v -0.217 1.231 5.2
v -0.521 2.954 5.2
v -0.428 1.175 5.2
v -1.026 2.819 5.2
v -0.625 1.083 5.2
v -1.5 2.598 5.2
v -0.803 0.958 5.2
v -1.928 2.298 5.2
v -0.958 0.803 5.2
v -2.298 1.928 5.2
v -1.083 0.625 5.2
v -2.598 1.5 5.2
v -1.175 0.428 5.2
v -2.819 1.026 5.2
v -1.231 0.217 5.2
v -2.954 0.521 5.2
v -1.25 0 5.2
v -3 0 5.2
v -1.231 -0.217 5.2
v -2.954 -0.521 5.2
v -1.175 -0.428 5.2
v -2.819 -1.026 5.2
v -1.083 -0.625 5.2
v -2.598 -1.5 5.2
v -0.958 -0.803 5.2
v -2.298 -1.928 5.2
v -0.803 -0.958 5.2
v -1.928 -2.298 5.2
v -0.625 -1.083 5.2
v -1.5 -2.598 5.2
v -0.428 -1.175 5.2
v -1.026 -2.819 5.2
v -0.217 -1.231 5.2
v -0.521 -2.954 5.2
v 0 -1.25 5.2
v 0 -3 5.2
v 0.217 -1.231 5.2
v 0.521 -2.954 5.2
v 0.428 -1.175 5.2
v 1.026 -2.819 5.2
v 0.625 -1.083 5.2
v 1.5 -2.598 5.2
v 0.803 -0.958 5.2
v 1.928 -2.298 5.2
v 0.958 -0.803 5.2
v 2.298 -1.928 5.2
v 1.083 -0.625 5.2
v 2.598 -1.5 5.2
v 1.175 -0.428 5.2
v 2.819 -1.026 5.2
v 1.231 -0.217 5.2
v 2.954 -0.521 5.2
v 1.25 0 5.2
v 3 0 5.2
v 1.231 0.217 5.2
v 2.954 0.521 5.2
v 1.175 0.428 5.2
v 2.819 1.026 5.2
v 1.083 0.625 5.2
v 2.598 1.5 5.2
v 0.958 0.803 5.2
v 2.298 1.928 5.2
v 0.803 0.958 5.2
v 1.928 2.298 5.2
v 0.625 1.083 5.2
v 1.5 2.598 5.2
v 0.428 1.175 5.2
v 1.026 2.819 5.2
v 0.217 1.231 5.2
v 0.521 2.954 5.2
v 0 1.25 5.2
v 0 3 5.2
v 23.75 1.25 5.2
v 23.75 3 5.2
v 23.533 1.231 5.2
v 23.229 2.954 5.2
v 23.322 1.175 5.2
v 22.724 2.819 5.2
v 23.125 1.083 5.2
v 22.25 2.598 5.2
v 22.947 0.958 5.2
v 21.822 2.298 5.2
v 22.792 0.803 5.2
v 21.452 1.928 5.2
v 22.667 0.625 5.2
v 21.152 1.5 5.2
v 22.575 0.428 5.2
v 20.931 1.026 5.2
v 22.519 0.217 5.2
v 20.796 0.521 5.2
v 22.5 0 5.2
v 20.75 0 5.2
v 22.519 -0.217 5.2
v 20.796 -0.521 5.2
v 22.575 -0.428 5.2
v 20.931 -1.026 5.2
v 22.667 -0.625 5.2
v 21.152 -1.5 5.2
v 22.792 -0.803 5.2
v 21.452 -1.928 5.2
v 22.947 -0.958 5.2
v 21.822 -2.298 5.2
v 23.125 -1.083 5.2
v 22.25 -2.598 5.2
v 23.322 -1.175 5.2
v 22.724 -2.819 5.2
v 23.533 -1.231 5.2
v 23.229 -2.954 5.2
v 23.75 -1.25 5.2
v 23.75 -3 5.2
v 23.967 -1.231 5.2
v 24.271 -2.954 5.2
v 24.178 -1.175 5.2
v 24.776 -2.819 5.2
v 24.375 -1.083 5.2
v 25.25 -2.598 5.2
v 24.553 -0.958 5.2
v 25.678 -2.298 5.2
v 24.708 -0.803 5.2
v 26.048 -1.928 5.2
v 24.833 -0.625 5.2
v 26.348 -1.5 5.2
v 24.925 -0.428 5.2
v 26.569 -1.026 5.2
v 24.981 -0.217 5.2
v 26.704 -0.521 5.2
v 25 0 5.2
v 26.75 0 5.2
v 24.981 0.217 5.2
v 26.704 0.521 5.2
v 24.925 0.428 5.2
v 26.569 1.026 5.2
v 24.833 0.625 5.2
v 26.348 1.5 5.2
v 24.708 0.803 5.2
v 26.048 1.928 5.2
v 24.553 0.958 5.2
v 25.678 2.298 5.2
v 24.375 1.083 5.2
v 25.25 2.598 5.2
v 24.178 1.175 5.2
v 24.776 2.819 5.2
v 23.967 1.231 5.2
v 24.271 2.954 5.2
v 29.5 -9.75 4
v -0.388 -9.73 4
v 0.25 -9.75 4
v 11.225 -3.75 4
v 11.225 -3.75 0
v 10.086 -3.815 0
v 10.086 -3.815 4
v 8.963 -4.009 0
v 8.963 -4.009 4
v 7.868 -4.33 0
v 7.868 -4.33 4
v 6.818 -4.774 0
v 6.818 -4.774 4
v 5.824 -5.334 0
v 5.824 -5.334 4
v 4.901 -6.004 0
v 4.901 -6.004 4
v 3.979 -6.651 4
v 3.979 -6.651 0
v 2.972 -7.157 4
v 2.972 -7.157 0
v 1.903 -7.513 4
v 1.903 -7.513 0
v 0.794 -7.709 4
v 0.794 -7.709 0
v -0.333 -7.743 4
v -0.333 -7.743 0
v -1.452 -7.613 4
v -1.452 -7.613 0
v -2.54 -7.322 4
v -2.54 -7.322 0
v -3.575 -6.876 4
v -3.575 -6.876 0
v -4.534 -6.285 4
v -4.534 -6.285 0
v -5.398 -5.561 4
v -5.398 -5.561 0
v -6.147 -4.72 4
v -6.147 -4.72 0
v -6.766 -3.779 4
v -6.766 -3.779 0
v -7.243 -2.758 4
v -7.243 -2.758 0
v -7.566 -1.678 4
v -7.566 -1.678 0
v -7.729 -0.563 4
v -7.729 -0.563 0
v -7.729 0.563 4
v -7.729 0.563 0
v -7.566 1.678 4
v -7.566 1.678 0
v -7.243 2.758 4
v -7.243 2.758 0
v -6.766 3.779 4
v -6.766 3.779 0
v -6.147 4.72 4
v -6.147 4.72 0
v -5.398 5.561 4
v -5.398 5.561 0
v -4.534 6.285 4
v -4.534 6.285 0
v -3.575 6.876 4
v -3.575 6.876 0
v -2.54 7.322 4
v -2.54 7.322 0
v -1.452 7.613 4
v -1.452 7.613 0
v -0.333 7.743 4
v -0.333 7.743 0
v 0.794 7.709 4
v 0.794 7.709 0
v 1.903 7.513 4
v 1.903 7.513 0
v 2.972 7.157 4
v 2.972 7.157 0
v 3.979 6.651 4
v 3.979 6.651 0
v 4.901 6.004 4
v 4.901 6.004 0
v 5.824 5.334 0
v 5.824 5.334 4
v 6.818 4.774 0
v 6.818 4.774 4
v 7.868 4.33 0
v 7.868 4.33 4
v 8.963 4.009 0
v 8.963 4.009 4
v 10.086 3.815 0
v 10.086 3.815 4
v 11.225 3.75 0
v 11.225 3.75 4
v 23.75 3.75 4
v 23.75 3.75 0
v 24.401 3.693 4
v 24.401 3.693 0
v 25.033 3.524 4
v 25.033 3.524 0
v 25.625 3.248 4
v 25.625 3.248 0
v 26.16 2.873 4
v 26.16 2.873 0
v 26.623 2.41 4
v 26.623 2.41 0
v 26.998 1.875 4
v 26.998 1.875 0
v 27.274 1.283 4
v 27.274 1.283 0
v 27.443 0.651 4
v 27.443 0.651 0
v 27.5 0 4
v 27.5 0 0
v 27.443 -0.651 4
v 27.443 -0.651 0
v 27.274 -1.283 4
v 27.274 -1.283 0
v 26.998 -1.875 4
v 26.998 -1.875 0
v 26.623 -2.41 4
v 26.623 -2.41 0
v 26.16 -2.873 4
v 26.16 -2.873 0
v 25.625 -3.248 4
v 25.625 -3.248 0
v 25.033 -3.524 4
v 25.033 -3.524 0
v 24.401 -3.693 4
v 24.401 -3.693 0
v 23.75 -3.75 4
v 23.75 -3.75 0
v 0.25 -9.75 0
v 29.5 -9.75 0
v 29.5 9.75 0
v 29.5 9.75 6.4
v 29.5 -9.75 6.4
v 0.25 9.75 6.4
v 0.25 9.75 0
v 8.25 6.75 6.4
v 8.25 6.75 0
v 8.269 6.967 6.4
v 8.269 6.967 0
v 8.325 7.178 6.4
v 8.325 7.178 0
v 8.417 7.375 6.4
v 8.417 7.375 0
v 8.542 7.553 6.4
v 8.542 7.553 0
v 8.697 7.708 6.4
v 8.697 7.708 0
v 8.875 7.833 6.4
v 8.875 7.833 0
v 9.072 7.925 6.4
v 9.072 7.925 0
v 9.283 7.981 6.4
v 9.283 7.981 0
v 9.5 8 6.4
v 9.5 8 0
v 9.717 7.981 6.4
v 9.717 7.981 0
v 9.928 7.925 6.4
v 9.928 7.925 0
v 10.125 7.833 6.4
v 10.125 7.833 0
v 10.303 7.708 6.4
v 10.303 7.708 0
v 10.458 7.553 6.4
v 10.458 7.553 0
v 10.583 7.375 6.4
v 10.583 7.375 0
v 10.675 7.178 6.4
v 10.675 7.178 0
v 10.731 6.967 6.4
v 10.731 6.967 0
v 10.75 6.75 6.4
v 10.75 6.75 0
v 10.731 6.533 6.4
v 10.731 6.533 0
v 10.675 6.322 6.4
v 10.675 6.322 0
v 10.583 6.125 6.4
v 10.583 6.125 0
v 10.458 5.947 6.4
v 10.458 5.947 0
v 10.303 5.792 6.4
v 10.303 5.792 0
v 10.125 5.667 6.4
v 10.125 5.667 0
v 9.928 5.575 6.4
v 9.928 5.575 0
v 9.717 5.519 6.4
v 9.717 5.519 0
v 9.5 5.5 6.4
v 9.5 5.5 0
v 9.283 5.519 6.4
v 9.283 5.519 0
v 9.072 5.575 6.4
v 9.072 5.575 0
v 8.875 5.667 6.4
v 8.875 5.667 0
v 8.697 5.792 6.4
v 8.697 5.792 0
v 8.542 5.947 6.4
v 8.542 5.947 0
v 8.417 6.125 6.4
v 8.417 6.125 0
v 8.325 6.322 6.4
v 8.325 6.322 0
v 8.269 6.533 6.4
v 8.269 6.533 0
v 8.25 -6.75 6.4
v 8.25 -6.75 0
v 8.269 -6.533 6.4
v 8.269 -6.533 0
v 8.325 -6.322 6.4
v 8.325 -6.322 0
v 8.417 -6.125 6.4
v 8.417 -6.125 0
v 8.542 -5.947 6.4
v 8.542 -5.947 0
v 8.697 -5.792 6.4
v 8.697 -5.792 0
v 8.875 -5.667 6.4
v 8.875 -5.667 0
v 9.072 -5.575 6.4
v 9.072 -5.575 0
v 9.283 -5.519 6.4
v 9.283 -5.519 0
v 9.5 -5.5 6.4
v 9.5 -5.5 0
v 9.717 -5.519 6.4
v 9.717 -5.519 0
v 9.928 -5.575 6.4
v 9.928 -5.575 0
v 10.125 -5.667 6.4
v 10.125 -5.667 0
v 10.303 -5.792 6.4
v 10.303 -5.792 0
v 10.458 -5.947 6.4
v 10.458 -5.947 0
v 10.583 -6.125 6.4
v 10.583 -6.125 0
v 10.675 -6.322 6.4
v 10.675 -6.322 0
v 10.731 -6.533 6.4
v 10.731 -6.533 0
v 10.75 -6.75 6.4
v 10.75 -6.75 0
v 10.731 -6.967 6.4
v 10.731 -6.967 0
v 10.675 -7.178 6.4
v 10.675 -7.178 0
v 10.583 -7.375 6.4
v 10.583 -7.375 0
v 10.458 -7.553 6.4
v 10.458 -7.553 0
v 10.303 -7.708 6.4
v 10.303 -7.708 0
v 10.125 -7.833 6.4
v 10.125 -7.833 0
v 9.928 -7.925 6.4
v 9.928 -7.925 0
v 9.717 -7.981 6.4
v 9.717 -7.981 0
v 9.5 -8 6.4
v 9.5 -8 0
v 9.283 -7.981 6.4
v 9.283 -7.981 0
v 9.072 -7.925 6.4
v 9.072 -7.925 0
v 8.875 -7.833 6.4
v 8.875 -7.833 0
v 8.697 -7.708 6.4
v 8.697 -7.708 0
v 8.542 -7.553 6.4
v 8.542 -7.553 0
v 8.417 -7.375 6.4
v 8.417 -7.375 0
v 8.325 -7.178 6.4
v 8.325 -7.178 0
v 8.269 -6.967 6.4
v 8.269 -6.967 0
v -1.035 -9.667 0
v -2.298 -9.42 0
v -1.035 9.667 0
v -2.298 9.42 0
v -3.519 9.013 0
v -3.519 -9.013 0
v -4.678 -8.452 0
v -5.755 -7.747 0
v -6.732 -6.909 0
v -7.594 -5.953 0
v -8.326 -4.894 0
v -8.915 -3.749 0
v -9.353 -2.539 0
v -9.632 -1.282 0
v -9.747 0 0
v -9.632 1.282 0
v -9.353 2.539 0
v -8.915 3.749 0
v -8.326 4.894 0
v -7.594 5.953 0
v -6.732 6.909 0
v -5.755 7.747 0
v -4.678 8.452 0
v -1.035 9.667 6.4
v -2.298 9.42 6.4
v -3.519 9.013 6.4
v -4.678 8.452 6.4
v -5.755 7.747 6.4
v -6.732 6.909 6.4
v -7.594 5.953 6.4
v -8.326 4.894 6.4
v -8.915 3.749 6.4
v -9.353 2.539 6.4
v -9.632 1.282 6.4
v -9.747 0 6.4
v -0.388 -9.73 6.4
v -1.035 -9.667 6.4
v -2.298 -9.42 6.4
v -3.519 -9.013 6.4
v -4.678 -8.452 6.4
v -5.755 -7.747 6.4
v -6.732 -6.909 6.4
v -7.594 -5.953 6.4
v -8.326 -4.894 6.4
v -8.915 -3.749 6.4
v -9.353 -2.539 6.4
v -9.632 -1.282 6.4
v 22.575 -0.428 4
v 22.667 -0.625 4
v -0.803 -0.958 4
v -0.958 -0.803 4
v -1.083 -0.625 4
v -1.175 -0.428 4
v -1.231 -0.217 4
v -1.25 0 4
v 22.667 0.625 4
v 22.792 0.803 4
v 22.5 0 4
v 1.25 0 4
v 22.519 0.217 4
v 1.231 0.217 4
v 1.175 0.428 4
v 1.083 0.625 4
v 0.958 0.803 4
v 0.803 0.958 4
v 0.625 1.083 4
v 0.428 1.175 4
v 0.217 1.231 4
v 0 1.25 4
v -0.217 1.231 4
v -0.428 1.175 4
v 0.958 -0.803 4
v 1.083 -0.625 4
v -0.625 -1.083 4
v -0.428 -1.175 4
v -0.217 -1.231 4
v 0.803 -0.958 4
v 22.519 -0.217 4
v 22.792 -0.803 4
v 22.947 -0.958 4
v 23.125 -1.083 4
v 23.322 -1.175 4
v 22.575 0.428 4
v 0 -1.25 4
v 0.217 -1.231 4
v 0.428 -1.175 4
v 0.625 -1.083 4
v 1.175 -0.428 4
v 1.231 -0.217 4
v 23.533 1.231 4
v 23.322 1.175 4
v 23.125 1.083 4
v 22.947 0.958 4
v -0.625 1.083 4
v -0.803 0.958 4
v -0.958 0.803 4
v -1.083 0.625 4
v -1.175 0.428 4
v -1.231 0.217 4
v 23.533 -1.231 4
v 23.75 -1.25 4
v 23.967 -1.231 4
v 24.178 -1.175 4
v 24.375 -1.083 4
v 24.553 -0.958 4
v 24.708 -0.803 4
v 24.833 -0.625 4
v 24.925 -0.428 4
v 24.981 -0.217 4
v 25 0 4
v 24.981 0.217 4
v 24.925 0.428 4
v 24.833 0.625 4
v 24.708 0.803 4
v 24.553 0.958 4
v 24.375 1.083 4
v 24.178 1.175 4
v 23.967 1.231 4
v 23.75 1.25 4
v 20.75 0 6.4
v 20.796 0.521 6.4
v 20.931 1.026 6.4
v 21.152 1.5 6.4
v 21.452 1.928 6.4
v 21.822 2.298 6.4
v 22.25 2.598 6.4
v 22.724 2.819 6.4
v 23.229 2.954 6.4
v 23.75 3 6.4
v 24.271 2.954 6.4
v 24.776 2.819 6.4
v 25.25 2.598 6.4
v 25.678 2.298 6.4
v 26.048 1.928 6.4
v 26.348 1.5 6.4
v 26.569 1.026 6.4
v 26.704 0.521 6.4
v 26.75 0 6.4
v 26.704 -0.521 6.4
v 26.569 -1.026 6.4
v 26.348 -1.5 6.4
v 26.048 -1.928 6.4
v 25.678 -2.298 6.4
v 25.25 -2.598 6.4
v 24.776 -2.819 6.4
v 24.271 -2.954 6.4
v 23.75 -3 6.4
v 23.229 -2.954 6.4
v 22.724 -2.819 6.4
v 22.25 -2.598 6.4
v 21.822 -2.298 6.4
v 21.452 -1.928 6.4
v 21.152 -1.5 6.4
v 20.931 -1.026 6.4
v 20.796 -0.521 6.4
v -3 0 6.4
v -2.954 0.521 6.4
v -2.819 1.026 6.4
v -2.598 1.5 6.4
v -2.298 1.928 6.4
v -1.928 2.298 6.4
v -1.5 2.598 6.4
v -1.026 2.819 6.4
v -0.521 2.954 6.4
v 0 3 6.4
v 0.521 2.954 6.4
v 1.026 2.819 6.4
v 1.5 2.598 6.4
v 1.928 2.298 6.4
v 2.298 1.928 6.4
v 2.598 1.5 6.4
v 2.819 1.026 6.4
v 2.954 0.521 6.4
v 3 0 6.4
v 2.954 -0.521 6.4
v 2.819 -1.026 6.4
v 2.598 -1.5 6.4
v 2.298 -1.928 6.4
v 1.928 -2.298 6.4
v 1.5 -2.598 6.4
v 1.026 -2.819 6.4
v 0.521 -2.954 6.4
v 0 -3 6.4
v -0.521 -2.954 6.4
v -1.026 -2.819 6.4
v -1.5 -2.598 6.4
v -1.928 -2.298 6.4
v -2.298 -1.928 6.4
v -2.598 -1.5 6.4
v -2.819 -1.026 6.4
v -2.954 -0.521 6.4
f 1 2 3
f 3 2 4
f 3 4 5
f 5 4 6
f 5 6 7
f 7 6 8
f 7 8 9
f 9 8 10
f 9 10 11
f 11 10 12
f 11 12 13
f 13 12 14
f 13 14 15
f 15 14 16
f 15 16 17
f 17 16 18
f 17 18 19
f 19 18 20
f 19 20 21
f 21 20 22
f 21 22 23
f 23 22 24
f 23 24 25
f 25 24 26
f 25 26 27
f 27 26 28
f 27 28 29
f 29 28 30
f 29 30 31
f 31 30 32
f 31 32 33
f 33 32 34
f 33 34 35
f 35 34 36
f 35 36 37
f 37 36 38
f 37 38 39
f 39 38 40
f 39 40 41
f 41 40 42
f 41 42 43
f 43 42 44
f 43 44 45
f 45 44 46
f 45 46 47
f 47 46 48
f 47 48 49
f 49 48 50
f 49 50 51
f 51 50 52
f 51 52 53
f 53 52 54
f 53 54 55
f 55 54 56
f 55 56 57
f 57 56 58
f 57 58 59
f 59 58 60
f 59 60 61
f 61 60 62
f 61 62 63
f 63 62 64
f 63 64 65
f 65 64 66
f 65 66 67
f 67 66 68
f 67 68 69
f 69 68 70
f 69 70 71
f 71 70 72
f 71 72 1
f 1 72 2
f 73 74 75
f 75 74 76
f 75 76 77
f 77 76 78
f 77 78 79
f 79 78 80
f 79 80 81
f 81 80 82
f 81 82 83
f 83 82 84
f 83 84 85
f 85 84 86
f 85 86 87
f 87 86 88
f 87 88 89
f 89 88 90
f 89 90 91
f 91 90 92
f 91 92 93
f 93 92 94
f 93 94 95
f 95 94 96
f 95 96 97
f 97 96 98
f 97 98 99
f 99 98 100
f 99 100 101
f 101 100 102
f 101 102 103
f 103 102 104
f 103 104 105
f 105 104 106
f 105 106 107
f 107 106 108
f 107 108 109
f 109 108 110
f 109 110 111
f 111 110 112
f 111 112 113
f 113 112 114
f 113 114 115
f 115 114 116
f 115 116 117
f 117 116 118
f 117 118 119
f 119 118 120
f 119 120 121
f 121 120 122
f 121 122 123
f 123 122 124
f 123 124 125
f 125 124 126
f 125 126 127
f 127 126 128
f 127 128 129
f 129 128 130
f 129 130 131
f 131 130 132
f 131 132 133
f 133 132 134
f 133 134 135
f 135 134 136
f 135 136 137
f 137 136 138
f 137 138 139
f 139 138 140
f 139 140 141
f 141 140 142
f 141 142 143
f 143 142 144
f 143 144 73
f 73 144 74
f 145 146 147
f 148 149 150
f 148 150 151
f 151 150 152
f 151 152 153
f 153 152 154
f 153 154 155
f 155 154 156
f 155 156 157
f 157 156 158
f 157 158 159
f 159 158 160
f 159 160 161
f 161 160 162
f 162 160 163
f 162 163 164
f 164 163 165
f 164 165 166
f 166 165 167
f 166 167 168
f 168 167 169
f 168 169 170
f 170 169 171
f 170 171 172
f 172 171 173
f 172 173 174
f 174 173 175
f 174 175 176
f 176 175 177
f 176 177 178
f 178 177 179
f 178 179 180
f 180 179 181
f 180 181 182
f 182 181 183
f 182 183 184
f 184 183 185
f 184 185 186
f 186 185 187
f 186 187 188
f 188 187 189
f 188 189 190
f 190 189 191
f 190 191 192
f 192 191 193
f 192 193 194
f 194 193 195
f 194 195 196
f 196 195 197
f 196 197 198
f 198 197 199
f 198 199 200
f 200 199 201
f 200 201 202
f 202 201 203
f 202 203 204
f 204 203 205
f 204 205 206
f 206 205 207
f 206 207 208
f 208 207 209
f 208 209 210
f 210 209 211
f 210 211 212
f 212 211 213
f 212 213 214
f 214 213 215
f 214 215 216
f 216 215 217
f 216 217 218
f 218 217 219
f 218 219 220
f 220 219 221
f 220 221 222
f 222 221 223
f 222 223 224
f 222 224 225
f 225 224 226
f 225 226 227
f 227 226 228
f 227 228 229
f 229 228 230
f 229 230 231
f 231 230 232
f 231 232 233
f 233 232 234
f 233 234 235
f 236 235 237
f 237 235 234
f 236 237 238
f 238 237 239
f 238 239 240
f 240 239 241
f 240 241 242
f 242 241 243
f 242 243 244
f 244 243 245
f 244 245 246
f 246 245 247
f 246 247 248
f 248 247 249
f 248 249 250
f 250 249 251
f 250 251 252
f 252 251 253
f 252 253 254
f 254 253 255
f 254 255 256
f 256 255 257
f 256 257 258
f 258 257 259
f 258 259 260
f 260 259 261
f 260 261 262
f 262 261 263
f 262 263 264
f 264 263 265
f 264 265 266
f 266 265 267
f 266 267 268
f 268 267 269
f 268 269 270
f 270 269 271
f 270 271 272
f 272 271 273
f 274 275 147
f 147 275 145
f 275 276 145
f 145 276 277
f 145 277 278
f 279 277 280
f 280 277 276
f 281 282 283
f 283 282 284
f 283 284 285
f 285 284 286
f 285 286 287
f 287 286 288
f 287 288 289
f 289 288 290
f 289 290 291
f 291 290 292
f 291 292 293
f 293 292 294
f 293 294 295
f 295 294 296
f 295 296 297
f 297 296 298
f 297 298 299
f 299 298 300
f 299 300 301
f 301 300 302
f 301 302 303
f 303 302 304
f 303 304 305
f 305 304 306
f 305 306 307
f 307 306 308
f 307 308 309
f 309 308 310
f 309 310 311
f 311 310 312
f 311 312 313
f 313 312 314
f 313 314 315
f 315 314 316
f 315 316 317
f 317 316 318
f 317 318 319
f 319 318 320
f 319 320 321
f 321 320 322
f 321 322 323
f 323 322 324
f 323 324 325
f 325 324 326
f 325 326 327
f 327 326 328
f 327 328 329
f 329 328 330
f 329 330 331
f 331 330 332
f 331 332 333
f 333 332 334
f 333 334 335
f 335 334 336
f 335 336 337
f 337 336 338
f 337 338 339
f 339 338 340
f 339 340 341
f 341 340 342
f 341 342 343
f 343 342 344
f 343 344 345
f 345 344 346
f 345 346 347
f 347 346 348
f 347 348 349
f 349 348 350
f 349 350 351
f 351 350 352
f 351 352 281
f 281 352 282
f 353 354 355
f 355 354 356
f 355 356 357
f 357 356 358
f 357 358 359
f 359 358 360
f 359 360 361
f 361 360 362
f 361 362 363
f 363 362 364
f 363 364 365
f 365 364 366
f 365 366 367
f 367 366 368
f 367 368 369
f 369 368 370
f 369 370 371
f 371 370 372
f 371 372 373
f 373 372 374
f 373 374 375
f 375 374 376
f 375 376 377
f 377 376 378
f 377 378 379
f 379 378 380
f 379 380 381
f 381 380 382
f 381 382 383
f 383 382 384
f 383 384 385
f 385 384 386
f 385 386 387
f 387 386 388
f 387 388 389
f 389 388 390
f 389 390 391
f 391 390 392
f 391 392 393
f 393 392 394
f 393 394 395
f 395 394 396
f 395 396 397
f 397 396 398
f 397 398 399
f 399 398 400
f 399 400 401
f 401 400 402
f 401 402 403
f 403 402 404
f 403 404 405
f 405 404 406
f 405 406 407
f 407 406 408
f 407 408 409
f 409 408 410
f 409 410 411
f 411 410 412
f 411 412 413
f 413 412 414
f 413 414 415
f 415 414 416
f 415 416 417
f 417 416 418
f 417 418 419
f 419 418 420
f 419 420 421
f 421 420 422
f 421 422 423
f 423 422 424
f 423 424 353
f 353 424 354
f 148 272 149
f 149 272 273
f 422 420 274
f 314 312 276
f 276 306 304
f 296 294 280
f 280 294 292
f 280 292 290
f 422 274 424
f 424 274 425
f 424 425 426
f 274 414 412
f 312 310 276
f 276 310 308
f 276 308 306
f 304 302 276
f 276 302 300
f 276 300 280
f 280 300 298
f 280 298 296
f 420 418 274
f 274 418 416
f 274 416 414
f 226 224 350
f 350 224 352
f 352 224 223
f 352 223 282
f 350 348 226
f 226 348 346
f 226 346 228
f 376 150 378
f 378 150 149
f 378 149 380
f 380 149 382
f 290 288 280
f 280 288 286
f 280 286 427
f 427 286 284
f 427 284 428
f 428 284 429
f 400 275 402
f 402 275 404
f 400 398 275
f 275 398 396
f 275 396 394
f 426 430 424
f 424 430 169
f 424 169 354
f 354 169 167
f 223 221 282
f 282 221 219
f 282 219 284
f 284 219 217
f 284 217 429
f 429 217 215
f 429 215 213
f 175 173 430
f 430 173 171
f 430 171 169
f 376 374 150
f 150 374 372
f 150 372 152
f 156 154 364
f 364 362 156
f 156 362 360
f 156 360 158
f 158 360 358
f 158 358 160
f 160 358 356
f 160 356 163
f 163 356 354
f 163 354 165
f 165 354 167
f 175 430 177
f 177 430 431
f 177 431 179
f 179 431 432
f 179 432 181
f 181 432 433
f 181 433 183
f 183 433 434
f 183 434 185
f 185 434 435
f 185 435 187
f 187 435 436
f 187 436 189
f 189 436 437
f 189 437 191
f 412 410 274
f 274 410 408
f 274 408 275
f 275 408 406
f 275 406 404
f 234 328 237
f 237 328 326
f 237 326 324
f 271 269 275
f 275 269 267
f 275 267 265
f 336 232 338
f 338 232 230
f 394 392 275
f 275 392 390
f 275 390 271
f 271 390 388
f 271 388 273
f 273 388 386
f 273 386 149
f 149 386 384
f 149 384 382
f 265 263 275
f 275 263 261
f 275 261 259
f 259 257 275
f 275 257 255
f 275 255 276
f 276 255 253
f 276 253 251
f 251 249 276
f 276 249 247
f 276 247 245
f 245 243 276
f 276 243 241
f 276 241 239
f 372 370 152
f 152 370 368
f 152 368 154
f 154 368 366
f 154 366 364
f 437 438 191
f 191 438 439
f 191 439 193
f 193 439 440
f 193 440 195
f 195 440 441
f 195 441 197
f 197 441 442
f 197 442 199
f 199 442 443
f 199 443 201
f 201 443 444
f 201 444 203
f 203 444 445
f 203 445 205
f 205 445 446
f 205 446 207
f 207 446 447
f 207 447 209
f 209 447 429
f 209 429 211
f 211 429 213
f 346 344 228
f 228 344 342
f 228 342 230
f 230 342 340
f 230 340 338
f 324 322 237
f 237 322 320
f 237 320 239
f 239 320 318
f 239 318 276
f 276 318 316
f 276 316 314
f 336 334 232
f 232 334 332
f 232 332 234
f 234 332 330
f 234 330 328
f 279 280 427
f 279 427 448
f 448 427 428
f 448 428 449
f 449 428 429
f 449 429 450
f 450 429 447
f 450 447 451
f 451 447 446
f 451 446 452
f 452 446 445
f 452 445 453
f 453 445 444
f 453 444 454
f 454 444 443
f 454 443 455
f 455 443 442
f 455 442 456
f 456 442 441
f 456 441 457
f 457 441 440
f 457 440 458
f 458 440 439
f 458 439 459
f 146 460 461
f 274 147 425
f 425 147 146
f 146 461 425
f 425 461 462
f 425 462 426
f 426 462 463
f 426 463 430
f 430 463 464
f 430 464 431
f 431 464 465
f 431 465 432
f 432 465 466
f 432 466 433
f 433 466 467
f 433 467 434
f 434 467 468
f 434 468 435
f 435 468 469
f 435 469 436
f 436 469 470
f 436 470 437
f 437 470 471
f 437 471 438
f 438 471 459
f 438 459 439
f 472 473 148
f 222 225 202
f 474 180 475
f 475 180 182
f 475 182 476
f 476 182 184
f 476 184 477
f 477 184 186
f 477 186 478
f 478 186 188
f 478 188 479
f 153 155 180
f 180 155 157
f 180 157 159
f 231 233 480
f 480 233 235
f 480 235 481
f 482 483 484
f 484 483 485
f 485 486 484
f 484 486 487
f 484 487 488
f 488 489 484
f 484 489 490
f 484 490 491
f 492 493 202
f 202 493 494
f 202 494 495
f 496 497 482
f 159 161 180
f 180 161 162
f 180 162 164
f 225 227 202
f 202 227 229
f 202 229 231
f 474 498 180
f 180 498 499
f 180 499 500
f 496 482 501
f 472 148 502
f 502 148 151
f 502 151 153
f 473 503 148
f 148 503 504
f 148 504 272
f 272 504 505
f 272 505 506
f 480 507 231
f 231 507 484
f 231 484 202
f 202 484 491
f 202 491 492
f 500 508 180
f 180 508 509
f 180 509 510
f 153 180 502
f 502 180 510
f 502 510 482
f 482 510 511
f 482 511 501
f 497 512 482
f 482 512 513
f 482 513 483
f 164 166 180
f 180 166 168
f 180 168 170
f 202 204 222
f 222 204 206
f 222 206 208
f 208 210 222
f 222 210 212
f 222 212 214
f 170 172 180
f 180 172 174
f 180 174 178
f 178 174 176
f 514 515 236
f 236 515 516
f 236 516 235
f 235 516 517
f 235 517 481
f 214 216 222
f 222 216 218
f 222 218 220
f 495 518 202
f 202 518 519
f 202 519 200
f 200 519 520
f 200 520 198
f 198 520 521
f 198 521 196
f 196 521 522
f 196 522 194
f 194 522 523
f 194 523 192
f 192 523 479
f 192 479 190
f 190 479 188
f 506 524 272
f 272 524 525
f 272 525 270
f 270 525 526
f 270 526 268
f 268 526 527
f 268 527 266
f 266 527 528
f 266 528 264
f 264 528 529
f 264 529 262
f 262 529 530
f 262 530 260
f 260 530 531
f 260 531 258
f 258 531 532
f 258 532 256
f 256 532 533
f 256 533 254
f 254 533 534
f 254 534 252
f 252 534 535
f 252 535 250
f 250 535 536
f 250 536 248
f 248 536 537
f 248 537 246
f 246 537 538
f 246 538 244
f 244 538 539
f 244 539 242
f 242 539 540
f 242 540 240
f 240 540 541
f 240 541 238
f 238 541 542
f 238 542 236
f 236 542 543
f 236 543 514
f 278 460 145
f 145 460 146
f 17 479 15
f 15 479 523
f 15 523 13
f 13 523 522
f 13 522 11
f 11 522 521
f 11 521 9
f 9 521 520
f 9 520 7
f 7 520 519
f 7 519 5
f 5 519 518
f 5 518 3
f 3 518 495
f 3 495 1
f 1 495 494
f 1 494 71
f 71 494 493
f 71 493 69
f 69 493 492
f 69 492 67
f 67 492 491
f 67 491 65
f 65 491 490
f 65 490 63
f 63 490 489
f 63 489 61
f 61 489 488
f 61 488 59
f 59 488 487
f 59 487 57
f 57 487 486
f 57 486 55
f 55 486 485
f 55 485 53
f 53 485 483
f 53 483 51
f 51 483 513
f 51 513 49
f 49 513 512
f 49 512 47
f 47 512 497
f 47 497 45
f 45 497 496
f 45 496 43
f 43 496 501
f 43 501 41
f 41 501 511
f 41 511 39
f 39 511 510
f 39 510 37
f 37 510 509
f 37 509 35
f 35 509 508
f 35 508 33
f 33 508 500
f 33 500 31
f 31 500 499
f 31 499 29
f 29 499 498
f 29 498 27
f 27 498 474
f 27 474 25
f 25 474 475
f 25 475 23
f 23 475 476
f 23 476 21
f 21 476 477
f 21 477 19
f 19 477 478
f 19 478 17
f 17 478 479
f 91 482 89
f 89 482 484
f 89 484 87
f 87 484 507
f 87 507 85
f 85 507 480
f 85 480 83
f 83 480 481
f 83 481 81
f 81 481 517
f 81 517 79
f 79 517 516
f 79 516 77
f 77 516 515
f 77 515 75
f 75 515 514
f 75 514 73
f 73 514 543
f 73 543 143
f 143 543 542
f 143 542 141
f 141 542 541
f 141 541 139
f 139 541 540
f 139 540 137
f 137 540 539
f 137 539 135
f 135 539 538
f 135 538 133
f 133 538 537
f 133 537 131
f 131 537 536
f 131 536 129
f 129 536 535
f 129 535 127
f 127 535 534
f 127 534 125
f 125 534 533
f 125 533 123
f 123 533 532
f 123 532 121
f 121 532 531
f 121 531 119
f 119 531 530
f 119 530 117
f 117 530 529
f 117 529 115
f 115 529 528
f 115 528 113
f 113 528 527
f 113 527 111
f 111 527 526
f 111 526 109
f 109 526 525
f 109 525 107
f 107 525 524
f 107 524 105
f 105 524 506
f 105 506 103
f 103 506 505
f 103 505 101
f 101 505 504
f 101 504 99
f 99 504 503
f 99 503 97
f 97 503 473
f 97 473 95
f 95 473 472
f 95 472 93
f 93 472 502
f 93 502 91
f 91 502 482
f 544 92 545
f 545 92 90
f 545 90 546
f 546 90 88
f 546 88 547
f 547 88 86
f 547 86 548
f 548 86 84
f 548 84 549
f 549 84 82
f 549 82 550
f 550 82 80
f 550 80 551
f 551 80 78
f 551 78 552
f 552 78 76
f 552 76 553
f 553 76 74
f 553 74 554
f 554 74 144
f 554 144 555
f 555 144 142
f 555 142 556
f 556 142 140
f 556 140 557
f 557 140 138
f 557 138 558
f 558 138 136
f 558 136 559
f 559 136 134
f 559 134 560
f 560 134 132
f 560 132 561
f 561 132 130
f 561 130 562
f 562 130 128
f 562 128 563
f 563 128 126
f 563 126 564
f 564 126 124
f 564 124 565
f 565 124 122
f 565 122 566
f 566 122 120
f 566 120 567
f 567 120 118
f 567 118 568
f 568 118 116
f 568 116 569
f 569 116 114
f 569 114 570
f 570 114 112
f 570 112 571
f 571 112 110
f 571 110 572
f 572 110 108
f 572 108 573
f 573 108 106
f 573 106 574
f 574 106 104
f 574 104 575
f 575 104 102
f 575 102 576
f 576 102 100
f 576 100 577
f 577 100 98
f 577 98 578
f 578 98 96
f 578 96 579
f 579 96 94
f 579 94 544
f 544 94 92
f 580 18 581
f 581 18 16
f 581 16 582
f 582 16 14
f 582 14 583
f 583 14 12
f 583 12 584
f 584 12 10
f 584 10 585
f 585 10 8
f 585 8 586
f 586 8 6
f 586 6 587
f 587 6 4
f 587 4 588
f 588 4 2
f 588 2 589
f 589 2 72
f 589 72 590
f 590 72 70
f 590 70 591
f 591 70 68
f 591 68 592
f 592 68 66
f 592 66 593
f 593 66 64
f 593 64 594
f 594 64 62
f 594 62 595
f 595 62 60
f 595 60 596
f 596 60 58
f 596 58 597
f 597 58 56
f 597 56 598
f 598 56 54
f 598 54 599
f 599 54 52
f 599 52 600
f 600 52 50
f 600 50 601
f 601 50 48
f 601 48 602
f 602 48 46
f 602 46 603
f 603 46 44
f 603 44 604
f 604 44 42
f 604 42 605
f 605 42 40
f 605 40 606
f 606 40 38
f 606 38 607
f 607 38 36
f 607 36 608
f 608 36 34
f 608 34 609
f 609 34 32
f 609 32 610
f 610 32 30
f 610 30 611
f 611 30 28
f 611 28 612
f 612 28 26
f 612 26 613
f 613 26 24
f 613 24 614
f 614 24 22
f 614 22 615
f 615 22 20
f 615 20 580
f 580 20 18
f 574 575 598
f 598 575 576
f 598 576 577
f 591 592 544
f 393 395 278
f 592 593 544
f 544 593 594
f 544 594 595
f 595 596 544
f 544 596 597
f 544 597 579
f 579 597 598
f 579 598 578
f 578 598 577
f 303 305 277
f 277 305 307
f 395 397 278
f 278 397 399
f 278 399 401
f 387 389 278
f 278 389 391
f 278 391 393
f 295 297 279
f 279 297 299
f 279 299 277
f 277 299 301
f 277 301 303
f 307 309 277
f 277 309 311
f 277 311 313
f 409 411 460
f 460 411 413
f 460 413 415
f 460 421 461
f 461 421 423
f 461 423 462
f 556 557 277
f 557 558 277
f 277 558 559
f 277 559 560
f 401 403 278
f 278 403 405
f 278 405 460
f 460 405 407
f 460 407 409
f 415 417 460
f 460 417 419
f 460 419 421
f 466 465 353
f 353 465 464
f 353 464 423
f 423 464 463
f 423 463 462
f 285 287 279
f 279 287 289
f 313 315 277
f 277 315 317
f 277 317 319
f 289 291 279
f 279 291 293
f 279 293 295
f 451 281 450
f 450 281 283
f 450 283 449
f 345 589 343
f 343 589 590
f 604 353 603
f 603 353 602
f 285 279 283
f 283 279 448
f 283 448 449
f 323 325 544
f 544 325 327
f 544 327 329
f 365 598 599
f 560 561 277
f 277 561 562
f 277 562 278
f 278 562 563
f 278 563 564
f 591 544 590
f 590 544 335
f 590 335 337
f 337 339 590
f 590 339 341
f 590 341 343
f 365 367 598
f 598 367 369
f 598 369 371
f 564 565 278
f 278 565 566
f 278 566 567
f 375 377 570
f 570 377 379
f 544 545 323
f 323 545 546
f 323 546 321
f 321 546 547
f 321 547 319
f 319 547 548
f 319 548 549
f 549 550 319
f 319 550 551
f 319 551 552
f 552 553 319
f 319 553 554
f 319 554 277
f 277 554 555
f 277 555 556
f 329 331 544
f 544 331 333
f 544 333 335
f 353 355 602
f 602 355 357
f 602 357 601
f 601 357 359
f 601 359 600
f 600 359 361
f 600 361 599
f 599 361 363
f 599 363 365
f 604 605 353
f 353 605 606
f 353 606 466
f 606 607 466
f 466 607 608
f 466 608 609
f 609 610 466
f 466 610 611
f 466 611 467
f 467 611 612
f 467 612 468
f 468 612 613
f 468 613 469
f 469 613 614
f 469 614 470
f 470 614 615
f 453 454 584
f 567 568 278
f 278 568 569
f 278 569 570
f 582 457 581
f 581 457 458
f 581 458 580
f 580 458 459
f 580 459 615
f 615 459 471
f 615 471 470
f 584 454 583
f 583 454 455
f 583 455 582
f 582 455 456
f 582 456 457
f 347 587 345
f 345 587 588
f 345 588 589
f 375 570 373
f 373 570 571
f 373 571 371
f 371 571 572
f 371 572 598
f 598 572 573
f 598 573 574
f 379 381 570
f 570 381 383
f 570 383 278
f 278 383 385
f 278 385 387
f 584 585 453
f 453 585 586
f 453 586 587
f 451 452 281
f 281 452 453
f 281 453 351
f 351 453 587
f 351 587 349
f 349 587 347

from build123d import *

# Parameters (mm, degrees)
SKETCH1_R           = 1.25
BOSS_EXTRUDE4_DEPTH = 4
FILLET1_R           = 10
SKETCH2_R           = 1.25
BOSS_EXTRUDE5_DEPTH = 1.2
SKETCH3_R           = 3
SKETCH3_R_2         = 1.25
BOSS_EXTRUDE6_DEPTH = 1.2


with BuildPart() as part:
    # Sketch1 → Boss-Extrude4 (new body)
    with BuildSketch(Plane.XY):
        Polygon((-9.75, 9.75), (-9.75, 0), (-9.75, -9.75), (29.5, -9.75), (29.5, -6.75), (29.5, 6.75), (29.5, 9.75), align=None)
        with Locations((9.5, -6.75)):
            Circle(SKETCH1_R, mode=Mode.SUBTRACT)
        with Locations((9.5, 6.75)):
            Circle(SKETCH1_R, mode=Mode.SUBTRACT)
        with BuildLine():
            ThreePointArc((4.901044183, -6.003521127), (-3.322604971, -7.001628111), (-7.75, 0))
            ThreePointArc((-7.75, 0), (-3.322604971, 7.001628111), (4.901044183, 6.003521127))
            ThreePointArc((4.901044183, 6.003521127), (7.868246727, 4.330212616), (11.22497216, 3.75))
            Line((11.22497216, 3.75), (23.75, 3.75))
            ThreePointArc((23.75, 3.75), (26.401650429, 2.651650429), (27.5, 0))
            ThreePointArc((27.5, 0), (26.401650429, -2.651650429), (23.75, -3.75))
            Line((23.75, -3.75), (11.22497216, -3.75))
            ThreePointArc((11.22497216, -3.75), (7.868246727, -4.330212616), (4.901044183, -6.003521127))
        make_face(mode=Mode.SUBTRACT)
    extrude(amount=BOSS_EXTRUDE4_DEPTH)

    # Fillet1
    # the kernel refuses this fillet: 10 mm, written as the material it takes off along each edge
    with BuildSketch(Plane(origin=(-9.75, -9.75, -25), x_dir=(0, 1, 0), z_dir=(0, 0, 1))) as fillet1_piece_1:
        with BuildLine():
            CenterArc((FILLET1_R, -FILLET1_R), FILLET1_R, 90, 90)
            Line((0, -FILLET1_R), (0, 0))
            Line((0, 0), (FILLET1_R, 0))
        make_face()
    extrude(amount=54, mode=Mode.SUBTRACT)
    with BuildSketch(Plane(origin=(-9.75, 9.75, -25), x_dir=(0, -1, 0), z_dir=(0, 0, 1))) as fillet1_piece_2:
        with BuildLine():
            CenterArc((FILLET1_R, FILLET1_R), FILLET1_R, 180, 90)
            Line((0, FILLET1_R), (0, 0))
            Line((0, 0), (FILLET1_R, 0))
        make_face()
    extrude(amount=54, mode=Mode.SUBTRACT)

    # Sketch2 → Boss-Extrude5 (add)
    # profile 1 of 4: a face of its own
    with BuildSketch(Plane.XY.offset(4)):
        with BuildLine():
            ThreePointArc((8.882472313, 4.028236041), (5.388428188, 8.129565896), (0.25, 9.75))
            ThreePointArc((0.25, 9.75), (-6.732120022, 6.908910532), (-9.746874512, 0))
            ThreePointArc((-9.746874512, 0), (-6.957195545, -6.682267477), (-0.388423062, -9.729599992))
            Line((-0.388423062, -9.729599992), (0.667724562, -9.730320853))
            ThreePointArc((0.667724562, -9.730320853), (5.561475334, -8.012177738), (8.882472313, -4.028236041))
            ThreePointArc((8.882472313, -4.028236041), (6.780629621, -4.791885277), (4.901044183, -6.003521127))
            ThreePointArc((4.901044183, -6.003521127), (-7.75, 0), (4.901044183, 6.003521127))
            ThreePointArc((4.901044183, 6.003521127), (6.780629621, 4.791885277), (8.882472313, 4.028236041))
        make_face()
    # profile 2 of 4: a face of its own
    with BuildSketch(Plane.XY.offset(4)):
        with BuildLine():
            ThreePointArc((9.753204602, 0), (9.5330365, 2.060634631), (8.882472313, 4.028236041))
            ThreePointArc((8.882472313, 4.028236041), (6.780629621, 4.791885277), (4.901044183, 6.003521127))
            ThreePointArc((4.901044183, 6.003521127), (-7.75, 0), (4.901044183, -6.003521127))
            ThreePointArc((4.901044183, -6.003521127), (6.780629621, -4.791885277), (8.882472313, -4.028236041))
            ThreePointArc((8.882472313, -4.028236041), (9.5330365, -2.060634631), (9.753204602, 0))
        make_face()
        Circle(SKETCH2_R, mode=Mode.SUBTRACT)
    # profile 3 of 4: a face of its own
    with BuildSketch(Plane.XY.offset(4)):
        with BuildLine():
            Line((29.5, -9.75), (29.5, 9.75))
            Line((29.5, 9.75), (0.25, 9.75))
            ThreePointArc((0.25, 9.75), (5.388428188, 8.129565896), (8.882472313, 4.028236041))
            ThreePointArc((8.882472313, 4.028236041), (10.045489135, 3.819802631), (11.22497216, 3.75))
            Line((11.22497216, 3.75), (23.75, 3.75))
            ThreePointArc((23.75, 3.75), (27.5, 0), (23.75, -3.75))
            Line((23.75, -3.75), (11.22497216, -3.75))
            ThreePointArc((11.22497216, -3.75), (10.045489135, -3.819802631), (8.882472313, -4.028236041))
            ThreePointArc((8.882472313, -4.028236041), (5.561475334, -8.012177738), (0.667724562, -9.730320853))
            Line((0.667724562, -9.730320853), (29.5, -9.75))
        make_face()
        with Locations((9.5, -6.75)):
            Circle(SKETCH2_R, mode=Mode.SUBTRACT)
        with Locations((9.5, 6.75)):
            Circle(SKETCH2_R, mode=Mode.SUBTRACT)
    # profile 4 of 4: a face of its own
    with BuildSketch(Plane.XY.offset(4)):
        with BuildLine():
            ThreePointArc((11.22497216, 3.75), (10.045489135, 3.819802631), (8.882472313, 4.028236041))
            ThreePointArc((8.882472313, 4.028236041), (9.5330365, 2.060634631), (9.753204602, 0))
            ThreePointArc((9.753204602, 0), (9.5330365, -2.060634631), (8.882472313, -4.028236041))
            ThreePointArc((8.882472313, -4.028236041), (10.045489135, -3.819802631), (11.22497216, -3.75))
            Line((11.22497216, -3.75), (23.75, -3.75))
            ThreePointArc((23.75, -3.75), (27.5, 0), (23.75, 3.75))
            Line((23.75, 3.75), (11.22497216, 3.75))
        make_face()
        with Locations((23.75, 0)):
            Circle(SKETCH2_R, mode=Mode.SUBTRACT)
    extrude(amount=BOSS_EXTRUDE5_DEPTH)

    # Sketch3 → Boss-Extrude6 (add)
    # profile 1 of 2: a face of its own
    with BuildSketch(Plane.XY.offset(5.2)):
        with BuildLine():
            ThreePointArc((9.75, 0), (6.938066581, 6.850235917), (0.124208797, 9.749208797))
            ThreePointArc((0.124208797, 9.749208797), (-6.777009203, 6.864853594), (-9.746874512, 0))
            ThreePointArc((-9.746874512, 0), (-6.957195545, -6.682267477), (-0.388423062, -9.729599992))
            Line((-0.388423062, -9.729599992), (0.619672772, -9.730288056))
            ThreePointArc((0.619672772, -9.730288056), (7.110003851, -6.671607395), (9.75, 0))
        make_face()
        Circle(SKETCH3_R, mode=Mode.SUBTRACT)
    # profile 2 of 2: a face of its own
    with BuildSketch(Plane.XY.offset(5.2)):
        with BuildLine():
            Line((29.5, 9.75), (0.25, 9.75))
            ThreePointArc((0.25, 9.75), (0.187103155, 9.749802197), (0.124208797, 9.749208797))
            ThreePointArc((0.124208797, 9.749208797), (6.938066581, 6.850235917), (9.75, 0))
            ThreePointArc((9.75, 0), (7.110003851, -6.671607395), (0.619672772, -9.730288056))
            Line((0.619672772, -9.730288056), (29.5, -9.75))
            Line((29.5, -9.75), (29.5, 9.75))
        make_face()
        with Locations((9.5, -6.75)):
            Circle(SKETCH3_R_2, mode=Mode.SUBTRACT)
        with Locations((9.5, 6.75)):
            Circle(SKETCH3_R_2, mode=Mode.SUBTRACT)
        with Locations((23.75, 0)):
            Circle(SKETCH3_R, mode=Mode.SUBTRACT)
    extrude(amount=BOSS_EXTRUDE6_DEPTH)


solid = part.part
